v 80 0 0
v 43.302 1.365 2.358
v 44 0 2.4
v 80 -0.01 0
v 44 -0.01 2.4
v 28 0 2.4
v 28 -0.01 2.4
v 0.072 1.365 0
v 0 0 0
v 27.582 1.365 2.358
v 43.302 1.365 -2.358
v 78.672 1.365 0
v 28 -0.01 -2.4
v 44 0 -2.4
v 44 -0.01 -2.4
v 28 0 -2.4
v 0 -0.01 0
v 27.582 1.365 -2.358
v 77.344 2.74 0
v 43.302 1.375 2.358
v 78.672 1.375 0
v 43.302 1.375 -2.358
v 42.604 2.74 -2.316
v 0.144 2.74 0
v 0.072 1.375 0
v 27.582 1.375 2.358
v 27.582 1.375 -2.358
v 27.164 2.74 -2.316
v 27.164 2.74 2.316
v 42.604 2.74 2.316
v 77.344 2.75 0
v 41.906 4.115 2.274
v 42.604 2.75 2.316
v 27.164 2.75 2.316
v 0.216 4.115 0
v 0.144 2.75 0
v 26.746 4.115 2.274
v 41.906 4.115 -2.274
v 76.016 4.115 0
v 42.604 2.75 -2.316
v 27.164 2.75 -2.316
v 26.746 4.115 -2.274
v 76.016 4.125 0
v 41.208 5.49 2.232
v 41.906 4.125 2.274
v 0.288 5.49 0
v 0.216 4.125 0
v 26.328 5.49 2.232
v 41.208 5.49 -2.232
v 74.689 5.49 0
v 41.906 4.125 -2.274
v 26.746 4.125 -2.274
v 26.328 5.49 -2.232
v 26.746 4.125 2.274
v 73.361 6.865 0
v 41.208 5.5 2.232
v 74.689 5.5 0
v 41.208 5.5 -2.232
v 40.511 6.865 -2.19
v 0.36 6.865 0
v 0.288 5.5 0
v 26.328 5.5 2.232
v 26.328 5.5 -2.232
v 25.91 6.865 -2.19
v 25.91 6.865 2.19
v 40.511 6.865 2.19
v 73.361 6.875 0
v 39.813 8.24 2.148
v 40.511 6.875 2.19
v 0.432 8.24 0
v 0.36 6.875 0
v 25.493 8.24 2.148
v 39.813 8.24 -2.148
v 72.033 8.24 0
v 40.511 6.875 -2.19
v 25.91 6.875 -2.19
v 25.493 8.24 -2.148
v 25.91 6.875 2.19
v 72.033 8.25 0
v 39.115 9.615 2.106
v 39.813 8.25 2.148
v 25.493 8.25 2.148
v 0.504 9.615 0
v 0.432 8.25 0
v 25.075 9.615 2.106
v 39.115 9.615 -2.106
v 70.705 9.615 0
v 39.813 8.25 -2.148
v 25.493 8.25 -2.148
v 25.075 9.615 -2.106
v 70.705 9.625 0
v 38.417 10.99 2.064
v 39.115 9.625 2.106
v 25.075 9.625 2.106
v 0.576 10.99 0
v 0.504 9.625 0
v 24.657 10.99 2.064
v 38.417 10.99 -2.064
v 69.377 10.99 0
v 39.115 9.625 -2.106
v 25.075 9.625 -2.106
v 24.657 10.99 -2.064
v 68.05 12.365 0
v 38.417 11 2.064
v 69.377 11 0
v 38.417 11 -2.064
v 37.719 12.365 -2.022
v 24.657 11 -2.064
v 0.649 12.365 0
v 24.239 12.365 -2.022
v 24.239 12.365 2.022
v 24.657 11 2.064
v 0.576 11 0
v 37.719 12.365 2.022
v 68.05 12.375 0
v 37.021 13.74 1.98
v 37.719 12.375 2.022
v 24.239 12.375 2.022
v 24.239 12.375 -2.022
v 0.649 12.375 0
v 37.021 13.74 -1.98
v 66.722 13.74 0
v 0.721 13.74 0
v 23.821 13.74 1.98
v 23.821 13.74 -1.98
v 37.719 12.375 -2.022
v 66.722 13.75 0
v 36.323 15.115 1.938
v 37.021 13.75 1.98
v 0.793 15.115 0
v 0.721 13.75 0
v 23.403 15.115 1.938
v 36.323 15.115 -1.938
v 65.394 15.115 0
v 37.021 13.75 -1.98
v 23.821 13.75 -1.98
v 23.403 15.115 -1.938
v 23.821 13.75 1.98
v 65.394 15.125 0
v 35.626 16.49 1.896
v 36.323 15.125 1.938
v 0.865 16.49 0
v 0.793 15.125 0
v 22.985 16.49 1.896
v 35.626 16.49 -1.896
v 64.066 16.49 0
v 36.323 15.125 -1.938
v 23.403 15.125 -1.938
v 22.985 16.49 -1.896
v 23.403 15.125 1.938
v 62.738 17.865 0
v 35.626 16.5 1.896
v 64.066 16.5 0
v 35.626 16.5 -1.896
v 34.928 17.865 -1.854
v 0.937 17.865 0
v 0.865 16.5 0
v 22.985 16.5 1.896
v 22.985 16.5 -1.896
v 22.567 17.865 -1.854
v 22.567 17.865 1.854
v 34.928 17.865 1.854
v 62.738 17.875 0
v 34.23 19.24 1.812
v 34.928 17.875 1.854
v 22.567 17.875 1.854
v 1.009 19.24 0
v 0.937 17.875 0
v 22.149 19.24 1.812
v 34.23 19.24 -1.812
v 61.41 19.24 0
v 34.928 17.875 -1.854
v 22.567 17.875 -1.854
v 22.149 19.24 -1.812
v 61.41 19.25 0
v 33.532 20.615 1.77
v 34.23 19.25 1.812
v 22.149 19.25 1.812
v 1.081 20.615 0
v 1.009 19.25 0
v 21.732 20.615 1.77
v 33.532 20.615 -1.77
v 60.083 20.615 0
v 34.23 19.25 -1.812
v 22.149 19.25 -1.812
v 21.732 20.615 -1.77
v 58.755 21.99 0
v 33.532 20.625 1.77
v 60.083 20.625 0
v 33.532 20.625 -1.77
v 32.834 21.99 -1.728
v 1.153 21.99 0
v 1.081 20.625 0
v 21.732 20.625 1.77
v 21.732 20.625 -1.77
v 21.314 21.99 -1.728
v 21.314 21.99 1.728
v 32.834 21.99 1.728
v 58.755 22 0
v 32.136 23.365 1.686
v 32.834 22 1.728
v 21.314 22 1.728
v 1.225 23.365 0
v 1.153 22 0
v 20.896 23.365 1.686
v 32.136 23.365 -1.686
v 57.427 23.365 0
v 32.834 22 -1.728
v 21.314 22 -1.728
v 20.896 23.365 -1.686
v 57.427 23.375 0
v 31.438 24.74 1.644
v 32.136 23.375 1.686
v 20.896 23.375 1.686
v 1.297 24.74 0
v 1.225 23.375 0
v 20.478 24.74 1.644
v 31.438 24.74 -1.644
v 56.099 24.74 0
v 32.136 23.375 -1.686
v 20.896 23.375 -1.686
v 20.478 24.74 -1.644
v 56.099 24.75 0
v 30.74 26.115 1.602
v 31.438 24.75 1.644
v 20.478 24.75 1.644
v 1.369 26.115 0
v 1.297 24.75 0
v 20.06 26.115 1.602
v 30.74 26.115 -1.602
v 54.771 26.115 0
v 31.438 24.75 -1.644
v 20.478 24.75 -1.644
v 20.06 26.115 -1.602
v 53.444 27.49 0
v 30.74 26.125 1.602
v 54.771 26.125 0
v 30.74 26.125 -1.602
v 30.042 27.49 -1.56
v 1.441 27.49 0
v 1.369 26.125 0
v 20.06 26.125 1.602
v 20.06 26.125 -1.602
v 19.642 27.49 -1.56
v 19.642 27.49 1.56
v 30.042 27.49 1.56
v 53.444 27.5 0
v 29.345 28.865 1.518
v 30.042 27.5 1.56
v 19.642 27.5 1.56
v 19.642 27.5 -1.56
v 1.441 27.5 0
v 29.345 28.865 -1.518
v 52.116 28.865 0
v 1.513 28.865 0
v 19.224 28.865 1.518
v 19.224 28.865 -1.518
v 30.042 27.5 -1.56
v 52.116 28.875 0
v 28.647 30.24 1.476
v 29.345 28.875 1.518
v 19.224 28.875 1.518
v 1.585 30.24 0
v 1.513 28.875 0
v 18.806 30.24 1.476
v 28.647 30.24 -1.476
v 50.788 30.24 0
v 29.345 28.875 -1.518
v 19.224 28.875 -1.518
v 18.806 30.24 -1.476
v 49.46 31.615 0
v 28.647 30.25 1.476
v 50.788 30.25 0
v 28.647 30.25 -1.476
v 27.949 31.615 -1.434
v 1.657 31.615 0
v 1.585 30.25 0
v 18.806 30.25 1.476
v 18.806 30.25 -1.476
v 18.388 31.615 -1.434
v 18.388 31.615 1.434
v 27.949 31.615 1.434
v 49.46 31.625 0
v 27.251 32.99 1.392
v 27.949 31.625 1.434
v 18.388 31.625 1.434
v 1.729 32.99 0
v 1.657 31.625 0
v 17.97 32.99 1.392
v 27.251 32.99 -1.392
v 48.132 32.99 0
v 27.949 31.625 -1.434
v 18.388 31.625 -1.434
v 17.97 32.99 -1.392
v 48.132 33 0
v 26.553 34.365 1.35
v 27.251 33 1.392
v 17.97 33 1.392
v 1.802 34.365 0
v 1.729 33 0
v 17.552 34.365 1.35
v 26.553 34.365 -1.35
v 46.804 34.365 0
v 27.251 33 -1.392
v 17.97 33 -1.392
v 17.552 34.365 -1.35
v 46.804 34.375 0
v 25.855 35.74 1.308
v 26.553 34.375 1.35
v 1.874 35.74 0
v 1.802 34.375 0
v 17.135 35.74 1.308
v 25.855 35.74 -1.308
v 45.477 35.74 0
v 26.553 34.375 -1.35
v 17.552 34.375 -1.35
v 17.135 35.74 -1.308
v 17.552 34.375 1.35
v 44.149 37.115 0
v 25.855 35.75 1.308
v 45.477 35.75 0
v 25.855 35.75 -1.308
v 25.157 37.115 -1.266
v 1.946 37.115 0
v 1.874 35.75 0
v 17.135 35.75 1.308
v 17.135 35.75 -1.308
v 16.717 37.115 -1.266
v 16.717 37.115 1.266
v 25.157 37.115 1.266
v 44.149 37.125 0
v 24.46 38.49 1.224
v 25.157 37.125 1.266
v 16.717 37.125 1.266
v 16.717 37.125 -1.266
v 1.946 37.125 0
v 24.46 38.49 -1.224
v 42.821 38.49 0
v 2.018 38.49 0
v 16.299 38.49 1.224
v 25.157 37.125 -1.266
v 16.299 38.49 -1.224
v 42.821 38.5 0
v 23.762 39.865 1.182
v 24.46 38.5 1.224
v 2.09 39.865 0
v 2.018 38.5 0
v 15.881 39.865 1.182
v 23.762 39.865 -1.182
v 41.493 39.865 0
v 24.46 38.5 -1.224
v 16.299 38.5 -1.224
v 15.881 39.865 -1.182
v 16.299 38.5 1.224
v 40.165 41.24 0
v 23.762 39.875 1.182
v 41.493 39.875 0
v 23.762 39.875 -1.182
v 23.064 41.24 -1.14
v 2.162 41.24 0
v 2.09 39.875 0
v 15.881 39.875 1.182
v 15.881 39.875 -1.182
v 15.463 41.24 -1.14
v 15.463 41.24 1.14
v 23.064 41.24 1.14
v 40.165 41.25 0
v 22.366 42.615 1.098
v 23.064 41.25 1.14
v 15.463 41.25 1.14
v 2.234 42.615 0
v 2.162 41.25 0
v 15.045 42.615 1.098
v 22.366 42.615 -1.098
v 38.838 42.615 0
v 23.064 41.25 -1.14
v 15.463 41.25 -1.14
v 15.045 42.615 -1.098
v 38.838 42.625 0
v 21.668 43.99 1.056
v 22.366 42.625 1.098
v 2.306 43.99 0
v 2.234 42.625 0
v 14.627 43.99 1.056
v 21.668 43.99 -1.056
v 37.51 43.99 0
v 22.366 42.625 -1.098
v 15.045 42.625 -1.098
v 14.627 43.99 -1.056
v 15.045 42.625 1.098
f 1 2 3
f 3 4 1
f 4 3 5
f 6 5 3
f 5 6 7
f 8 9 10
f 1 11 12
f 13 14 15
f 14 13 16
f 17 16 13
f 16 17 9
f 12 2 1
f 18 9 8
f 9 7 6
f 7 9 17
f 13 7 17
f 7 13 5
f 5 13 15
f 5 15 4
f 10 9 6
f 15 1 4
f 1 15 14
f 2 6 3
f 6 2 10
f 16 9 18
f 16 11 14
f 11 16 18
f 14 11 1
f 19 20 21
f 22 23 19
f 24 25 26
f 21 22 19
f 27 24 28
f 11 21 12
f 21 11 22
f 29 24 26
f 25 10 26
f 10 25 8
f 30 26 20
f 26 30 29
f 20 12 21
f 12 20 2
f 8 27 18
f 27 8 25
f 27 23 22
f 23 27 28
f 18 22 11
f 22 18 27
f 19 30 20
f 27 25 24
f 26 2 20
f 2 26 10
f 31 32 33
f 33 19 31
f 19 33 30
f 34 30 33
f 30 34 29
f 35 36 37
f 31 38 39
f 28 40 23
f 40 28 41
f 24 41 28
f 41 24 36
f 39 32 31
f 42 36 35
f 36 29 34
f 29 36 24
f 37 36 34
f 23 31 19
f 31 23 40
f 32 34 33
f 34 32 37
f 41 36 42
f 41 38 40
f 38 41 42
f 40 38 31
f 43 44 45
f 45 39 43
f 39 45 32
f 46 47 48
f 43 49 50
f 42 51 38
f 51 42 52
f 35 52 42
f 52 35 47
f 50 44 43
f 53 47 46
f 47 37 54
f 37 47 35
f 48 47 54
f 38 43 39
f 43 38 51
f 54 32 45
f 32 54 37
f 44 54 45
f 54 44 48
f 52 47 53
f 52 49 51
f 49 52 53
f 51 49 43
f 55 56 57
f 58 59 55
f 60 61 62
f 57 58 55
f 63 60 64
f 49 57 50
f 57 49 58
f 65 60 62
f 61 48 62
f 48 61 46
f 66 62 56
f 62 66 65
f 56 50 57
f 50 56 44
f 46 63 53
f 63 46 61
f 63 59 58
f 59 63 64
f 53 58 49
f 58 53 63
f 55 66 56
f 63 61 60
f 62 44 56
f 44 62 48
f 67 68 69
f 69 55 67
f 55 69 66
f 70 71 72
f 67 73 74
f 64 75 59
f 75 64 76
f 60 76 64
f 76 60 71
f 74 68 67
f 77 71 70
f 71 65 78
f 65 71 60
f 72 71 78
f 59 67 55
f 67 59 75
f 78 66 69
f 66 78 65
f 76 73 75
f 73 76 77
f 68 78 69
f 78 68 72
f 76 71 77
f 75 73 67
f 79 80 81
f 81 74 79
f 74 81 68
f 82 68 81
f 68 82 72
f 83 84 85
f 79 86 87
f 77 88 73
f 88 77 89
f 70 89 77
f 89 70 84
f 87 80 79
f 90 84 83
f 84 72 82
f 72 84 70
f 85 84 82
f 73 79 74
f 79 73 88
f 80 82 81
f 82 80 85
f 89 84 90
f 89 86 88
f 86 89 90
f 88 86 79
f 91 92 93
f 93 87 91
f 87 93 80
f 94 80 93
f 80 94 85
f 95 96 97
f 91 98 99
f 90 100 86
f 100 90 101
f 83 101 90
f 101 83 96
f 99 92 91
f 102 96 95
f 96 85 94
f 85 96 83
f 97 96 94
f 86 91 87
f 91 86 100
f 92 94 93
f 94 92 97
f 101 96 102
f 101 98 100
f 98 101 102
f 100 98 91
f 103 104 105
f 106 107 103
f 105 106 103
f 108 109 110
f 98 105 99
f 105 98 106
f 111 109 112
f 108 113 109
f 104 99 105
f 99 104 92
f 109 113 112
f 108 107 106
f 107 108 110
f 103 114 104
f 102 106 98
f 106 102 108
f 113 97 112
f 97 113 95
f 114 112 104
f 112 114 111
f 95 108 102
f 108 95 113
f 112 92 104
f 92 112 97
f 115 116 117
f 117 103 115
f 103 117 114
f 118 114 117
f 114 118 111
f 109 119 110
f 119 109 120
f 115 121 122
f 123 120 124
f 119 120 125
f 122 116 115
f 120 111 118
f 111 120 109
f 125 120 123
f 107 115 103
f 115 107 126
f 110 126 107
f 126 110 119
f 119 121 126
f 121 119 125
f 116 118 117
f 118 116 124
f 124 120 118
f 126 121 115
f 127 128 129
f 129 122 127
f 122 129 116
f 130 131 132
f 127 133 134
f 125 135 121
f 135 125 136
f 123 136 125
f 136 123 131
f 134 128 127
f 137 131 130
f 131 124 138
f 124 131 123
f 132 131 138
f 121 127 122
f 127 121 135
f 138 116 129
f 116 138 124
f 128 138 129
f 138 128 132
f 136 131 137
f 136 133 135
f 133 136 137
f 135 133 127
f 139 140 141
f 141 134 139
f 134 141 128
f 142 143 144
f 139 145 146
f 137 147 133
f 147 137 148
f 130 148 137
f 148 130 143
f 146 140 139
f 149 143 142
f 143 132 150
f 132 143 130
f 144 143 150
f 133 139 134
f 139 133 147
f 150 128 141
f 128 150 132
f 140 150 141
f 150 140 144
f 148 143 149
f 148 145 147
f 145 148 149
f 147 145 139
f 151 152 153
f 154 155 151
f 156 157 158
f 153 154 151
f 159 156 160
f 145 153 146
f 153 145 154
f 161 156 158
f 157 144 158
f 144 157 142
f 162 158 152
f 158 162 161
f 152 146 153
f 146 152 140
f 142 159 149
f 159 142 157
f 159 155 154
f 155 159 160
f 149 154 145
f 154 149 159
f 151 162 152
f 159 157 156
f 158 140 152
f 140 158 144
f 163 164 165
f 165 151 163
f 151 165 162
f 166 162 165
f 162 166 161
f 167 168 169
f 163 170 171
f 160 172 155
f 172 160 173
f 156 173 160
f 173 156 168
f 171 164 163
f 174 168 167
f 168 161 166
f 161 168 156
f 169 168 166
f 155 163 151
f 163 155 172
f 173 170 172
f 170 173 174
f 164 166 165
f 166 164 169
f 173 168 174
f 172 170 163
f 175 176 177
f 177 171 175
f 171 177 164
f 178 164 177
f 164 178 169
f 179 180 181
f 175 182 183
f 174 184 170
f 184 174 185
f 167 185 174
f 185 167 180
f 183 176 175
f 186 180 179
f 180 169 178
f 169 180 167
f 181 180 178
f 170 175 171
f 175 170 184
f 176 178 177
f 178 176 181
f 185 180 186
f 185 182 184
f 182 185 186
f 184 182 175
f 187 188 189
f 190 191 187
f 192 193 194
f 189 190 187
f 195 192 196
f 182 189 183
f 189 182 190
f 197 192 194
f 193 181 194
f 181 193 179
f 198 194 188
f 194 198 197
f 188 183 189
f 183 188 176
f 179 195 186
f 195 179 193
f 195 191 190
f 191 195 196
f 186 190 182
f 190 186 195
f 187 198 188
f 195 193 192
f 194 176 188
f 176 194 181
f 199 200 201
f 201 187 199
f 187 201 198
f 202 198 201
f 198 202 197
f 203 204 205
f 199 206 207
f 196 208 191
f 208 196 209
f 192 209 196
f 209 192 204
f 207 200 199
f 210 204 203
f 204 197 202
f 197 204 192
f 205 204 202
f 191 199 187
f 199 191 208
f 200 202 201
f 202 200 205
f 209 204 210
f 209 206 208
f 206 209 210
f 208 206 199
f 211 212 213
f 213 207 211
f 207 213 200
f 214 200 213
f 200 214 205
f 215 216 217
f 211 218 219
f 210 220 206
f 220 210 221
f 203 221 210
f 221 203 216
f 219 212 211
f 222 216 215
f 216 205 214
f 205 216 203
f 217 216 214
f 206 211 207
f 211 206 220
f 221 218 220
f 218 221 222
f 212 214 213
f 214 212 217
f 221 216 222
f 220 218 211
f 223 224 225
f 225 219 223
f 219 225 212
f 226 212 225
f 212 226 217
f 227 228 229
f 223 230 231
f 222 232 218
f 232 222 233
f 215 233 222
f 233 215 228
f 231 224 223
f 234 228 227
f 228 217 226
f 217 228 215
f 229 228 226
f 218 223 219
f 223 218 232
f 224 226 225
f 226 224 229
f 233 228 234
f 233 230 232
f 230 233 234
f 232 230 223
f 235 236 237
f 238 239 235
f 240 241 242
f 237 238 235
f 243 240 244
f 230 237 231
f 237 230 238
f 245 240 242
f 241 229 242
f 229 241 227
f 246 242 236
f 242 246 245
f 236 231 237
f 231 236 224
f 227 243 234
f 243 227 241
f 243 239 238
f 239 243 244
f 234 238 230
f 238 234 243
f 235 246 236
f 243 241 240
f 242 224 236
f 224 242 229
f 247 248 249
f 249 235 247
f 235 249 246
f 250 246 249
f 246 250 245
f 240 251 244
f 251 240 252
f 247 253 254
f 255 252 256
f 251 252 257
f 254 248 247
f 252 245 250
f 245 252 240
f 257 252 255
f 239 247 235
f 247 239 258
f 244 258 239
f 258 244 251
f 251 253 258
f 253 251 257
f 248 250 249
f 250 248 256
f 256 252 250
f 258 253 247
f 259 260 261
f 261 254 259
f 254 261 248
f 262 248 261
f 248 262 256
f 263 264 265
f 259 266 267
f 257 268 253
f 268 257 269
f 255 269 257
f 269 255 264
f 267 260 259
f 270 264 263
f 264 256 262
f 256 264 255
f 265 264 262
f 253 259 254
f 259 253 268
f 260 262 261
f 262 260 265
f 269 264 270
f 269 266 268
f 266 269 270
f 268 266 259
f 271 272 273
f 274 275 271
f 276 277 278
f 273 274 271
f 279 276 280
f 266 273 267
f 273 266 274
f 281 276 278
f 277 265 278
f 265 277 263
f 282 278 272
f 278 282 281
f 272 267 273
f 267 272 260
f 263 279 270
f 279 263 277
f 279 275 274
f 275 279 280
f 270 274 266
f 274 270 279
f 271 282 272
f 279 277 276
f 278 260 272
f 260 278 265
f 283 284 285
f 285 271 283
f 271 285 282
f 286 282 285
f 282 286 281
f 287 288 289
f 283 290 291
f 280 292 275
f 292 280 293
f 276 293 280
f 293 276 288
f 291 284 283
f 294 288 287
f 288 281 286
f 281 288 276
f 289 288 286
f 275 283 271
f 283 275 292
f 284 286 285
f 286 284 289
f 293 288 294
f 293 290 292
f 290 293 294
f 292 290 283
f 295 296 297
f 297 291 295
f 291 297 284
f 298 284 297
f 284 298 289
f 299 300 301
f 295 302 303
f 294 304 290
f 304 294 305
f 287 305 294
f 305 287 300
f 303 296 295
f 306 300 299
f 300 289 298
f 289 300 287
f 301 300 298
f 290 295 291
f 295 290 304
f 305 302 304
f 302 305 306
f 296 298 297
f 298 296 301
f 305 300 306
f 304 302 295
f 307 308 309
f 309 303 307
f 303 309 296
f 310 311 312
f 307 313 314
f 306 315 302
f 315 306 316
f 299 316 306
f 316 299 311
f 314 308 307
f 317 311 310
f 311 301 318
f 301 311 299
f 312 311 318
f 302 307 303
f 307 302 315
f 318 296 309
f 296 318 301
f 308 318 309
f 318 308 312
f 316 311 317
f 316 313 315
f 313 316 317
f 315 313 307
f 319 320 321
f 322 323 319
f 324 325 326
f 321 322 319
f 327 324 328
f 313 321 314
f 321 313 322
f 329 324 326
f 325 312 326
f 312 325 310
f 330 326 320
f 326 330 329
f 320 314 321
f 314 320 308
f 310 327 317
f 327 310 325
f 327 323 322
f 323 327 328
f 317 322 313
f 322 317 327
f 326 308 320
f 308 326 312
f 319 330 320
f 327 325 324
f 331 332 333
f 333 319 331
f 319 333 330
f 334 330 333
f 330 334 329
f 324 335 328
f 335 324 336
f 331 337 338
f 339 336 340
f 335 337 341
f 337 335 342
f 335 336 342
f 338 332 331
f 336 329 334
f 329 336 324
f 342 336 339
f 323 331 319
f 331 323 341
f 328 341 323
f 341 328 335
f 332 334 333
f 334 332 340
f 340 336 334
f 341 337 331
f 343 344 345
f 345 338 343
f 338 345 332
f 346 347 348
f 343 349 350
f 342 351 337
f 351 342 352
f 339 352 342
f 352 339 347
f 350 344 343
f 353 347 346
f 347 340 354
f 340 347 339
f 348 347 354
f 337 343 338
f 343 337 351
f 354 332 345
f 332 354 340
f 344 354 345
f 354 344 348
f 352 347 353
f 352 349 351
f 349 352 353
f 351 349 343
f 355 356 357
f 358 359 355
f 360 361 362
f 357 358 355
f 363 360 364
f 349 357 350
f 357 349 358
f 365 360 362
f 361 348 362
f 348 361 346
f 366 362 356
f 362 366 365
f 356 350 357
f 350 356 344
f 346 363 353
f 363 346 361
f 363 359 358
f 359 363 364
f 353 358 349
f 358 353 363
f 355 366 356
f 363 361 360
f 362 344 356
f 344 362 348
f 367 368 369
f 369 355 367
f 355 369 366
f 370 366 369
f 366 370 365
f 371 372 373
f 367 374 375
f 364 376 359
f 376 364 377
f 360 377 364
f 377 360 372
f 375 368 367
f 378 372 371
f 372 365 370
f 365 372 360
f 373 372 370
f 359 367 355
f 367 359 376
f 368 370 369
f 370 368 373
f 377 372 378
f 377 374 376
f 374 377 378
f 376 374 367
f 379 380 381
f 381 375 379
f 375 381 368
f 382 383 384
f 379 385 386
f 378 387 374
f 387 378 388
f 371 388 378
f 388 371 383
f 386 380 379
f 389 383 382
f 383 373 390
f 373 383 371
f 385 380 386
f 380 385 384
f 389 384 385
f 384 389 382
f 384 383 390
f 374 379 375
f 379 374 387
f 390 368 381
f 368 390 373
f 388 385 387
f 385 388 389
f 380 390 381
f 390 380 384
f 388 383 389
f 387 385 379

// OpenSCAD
// =============================================================
// AIM-9 Sidewinder style REAR fin (wing)
// - Clipped delta / trapezoidal planform
// - ~60deg swept leading edge
// - Near-perpendicular trailing edge
// - Symmetric hexagonal (double-wedge) airfoil
// - No mounting features (add yours later)
// =============================================================
// Coordinate system:
//   X = chordwise  (LE near +X, TE near origin)
//   Y = spanwise   (root at Y=0, tip at +Y)
//   Z = thickness  (symmetric about Z=0)
// =============================================================

/* [Planform] */
root_chord       = 80;     // chord at the root (mm)
tip_chord        = 35;     // chord at the tip - clipped, not pointed (mm)
span             = 44;     // root-to-tip distance (mm)

leading_sweep    = 44;     // LE sweep angle (deg)
trailing_sweep   = 3;      // small forward sweep on TE (deg, 0 = square)

/* [Airfoil - symmetric hexagonal / double-wedge] */
thickness_pct    = 0.06;   // max thickness as fraction of local chord
flat_start_pct   = 0.35;   // chord fraction where flat top begins
flat_end_pct     = 0.55;   // chord fraction where flat top ends

$fn = 64;

// =============================================================
// Planform helpers
// =============================================================
// Single sweep angle on the leading edge - simple delta
function le_x_at_y(y) = root_chord - y * tan(leading_sweep);

// Trailing edge - mostly perpendicular to root
function te_x_at_y(y) = 0 + y * tan(trailing_sweep);

// =============================================================
// Hexagonal airfoil cross-section
// =============================================================
module hex_airfoil_2d(c) {
    t = c * thickness_pct;
    x1 = c * flat_start_pct;
    x2 = c * flat_end_pct;
    polygon([
        [0,   0],
        [x1,  t/2],
        [x2,  t/2],
        [c,   0],
        [x2, -t/2],
        [x1, -t/2]
    ]);
}

// =============================================================
// Fin solid - stack airfoils along span and hull adjacent ones
//
// For a clipped tip, we clamp the leading edge so the local chord
// at the tip is at least tip_chord. This naturally produces the
// trapezoidal shape: pure delta until the tip is reached, then
// a flat tip edge.
// =============================================================
module fin() {
    n_stations = 32;

    // Local chord at spanwise position y, with tip clipping
    function local_chord(y) =
        let(le = le_x_at_y(y), te = te_x_at_y(y))
            max(le - te, tip_chord);

    // For the LE position with clipping: when natural LE would
    // give chord < tip_chord, push LE forward to maintain tip_chord
    function le_x_clipped(y) =
        let(natural_le = le_x_at_y(y), te = te_x_at_y(y))
            max(natural_le, te + tip_chord);

    for (i = [0 : n_stations-1]) {
        y0 = i * span / n_stations;
        y1 = (i+1) * span / n_stations;
        c0 = local_chord(y0);
        c1 = local_chord(y1);
        x0 = te_x_at_y(y0);
        x1 = te_x_at_y(y1);
        if (c0 > 0.5 && c1 > 0.5) {
            hull() {
                translate([x0, y0, 0])
                    rotate([90, 0, 0])
                        linear_extrude(height = 0.01)
                            hex_airfoil_2d(c0);
                translate([x1, y1 - 0.01, 0])
                    rotate([90, 0, 0])
                        linear_extrude(height = 0.01)
                            hex_airfoil_2d(c1);
            }
        }
    }
}

// =============================================================
// Render
// =============================================================
fin();
